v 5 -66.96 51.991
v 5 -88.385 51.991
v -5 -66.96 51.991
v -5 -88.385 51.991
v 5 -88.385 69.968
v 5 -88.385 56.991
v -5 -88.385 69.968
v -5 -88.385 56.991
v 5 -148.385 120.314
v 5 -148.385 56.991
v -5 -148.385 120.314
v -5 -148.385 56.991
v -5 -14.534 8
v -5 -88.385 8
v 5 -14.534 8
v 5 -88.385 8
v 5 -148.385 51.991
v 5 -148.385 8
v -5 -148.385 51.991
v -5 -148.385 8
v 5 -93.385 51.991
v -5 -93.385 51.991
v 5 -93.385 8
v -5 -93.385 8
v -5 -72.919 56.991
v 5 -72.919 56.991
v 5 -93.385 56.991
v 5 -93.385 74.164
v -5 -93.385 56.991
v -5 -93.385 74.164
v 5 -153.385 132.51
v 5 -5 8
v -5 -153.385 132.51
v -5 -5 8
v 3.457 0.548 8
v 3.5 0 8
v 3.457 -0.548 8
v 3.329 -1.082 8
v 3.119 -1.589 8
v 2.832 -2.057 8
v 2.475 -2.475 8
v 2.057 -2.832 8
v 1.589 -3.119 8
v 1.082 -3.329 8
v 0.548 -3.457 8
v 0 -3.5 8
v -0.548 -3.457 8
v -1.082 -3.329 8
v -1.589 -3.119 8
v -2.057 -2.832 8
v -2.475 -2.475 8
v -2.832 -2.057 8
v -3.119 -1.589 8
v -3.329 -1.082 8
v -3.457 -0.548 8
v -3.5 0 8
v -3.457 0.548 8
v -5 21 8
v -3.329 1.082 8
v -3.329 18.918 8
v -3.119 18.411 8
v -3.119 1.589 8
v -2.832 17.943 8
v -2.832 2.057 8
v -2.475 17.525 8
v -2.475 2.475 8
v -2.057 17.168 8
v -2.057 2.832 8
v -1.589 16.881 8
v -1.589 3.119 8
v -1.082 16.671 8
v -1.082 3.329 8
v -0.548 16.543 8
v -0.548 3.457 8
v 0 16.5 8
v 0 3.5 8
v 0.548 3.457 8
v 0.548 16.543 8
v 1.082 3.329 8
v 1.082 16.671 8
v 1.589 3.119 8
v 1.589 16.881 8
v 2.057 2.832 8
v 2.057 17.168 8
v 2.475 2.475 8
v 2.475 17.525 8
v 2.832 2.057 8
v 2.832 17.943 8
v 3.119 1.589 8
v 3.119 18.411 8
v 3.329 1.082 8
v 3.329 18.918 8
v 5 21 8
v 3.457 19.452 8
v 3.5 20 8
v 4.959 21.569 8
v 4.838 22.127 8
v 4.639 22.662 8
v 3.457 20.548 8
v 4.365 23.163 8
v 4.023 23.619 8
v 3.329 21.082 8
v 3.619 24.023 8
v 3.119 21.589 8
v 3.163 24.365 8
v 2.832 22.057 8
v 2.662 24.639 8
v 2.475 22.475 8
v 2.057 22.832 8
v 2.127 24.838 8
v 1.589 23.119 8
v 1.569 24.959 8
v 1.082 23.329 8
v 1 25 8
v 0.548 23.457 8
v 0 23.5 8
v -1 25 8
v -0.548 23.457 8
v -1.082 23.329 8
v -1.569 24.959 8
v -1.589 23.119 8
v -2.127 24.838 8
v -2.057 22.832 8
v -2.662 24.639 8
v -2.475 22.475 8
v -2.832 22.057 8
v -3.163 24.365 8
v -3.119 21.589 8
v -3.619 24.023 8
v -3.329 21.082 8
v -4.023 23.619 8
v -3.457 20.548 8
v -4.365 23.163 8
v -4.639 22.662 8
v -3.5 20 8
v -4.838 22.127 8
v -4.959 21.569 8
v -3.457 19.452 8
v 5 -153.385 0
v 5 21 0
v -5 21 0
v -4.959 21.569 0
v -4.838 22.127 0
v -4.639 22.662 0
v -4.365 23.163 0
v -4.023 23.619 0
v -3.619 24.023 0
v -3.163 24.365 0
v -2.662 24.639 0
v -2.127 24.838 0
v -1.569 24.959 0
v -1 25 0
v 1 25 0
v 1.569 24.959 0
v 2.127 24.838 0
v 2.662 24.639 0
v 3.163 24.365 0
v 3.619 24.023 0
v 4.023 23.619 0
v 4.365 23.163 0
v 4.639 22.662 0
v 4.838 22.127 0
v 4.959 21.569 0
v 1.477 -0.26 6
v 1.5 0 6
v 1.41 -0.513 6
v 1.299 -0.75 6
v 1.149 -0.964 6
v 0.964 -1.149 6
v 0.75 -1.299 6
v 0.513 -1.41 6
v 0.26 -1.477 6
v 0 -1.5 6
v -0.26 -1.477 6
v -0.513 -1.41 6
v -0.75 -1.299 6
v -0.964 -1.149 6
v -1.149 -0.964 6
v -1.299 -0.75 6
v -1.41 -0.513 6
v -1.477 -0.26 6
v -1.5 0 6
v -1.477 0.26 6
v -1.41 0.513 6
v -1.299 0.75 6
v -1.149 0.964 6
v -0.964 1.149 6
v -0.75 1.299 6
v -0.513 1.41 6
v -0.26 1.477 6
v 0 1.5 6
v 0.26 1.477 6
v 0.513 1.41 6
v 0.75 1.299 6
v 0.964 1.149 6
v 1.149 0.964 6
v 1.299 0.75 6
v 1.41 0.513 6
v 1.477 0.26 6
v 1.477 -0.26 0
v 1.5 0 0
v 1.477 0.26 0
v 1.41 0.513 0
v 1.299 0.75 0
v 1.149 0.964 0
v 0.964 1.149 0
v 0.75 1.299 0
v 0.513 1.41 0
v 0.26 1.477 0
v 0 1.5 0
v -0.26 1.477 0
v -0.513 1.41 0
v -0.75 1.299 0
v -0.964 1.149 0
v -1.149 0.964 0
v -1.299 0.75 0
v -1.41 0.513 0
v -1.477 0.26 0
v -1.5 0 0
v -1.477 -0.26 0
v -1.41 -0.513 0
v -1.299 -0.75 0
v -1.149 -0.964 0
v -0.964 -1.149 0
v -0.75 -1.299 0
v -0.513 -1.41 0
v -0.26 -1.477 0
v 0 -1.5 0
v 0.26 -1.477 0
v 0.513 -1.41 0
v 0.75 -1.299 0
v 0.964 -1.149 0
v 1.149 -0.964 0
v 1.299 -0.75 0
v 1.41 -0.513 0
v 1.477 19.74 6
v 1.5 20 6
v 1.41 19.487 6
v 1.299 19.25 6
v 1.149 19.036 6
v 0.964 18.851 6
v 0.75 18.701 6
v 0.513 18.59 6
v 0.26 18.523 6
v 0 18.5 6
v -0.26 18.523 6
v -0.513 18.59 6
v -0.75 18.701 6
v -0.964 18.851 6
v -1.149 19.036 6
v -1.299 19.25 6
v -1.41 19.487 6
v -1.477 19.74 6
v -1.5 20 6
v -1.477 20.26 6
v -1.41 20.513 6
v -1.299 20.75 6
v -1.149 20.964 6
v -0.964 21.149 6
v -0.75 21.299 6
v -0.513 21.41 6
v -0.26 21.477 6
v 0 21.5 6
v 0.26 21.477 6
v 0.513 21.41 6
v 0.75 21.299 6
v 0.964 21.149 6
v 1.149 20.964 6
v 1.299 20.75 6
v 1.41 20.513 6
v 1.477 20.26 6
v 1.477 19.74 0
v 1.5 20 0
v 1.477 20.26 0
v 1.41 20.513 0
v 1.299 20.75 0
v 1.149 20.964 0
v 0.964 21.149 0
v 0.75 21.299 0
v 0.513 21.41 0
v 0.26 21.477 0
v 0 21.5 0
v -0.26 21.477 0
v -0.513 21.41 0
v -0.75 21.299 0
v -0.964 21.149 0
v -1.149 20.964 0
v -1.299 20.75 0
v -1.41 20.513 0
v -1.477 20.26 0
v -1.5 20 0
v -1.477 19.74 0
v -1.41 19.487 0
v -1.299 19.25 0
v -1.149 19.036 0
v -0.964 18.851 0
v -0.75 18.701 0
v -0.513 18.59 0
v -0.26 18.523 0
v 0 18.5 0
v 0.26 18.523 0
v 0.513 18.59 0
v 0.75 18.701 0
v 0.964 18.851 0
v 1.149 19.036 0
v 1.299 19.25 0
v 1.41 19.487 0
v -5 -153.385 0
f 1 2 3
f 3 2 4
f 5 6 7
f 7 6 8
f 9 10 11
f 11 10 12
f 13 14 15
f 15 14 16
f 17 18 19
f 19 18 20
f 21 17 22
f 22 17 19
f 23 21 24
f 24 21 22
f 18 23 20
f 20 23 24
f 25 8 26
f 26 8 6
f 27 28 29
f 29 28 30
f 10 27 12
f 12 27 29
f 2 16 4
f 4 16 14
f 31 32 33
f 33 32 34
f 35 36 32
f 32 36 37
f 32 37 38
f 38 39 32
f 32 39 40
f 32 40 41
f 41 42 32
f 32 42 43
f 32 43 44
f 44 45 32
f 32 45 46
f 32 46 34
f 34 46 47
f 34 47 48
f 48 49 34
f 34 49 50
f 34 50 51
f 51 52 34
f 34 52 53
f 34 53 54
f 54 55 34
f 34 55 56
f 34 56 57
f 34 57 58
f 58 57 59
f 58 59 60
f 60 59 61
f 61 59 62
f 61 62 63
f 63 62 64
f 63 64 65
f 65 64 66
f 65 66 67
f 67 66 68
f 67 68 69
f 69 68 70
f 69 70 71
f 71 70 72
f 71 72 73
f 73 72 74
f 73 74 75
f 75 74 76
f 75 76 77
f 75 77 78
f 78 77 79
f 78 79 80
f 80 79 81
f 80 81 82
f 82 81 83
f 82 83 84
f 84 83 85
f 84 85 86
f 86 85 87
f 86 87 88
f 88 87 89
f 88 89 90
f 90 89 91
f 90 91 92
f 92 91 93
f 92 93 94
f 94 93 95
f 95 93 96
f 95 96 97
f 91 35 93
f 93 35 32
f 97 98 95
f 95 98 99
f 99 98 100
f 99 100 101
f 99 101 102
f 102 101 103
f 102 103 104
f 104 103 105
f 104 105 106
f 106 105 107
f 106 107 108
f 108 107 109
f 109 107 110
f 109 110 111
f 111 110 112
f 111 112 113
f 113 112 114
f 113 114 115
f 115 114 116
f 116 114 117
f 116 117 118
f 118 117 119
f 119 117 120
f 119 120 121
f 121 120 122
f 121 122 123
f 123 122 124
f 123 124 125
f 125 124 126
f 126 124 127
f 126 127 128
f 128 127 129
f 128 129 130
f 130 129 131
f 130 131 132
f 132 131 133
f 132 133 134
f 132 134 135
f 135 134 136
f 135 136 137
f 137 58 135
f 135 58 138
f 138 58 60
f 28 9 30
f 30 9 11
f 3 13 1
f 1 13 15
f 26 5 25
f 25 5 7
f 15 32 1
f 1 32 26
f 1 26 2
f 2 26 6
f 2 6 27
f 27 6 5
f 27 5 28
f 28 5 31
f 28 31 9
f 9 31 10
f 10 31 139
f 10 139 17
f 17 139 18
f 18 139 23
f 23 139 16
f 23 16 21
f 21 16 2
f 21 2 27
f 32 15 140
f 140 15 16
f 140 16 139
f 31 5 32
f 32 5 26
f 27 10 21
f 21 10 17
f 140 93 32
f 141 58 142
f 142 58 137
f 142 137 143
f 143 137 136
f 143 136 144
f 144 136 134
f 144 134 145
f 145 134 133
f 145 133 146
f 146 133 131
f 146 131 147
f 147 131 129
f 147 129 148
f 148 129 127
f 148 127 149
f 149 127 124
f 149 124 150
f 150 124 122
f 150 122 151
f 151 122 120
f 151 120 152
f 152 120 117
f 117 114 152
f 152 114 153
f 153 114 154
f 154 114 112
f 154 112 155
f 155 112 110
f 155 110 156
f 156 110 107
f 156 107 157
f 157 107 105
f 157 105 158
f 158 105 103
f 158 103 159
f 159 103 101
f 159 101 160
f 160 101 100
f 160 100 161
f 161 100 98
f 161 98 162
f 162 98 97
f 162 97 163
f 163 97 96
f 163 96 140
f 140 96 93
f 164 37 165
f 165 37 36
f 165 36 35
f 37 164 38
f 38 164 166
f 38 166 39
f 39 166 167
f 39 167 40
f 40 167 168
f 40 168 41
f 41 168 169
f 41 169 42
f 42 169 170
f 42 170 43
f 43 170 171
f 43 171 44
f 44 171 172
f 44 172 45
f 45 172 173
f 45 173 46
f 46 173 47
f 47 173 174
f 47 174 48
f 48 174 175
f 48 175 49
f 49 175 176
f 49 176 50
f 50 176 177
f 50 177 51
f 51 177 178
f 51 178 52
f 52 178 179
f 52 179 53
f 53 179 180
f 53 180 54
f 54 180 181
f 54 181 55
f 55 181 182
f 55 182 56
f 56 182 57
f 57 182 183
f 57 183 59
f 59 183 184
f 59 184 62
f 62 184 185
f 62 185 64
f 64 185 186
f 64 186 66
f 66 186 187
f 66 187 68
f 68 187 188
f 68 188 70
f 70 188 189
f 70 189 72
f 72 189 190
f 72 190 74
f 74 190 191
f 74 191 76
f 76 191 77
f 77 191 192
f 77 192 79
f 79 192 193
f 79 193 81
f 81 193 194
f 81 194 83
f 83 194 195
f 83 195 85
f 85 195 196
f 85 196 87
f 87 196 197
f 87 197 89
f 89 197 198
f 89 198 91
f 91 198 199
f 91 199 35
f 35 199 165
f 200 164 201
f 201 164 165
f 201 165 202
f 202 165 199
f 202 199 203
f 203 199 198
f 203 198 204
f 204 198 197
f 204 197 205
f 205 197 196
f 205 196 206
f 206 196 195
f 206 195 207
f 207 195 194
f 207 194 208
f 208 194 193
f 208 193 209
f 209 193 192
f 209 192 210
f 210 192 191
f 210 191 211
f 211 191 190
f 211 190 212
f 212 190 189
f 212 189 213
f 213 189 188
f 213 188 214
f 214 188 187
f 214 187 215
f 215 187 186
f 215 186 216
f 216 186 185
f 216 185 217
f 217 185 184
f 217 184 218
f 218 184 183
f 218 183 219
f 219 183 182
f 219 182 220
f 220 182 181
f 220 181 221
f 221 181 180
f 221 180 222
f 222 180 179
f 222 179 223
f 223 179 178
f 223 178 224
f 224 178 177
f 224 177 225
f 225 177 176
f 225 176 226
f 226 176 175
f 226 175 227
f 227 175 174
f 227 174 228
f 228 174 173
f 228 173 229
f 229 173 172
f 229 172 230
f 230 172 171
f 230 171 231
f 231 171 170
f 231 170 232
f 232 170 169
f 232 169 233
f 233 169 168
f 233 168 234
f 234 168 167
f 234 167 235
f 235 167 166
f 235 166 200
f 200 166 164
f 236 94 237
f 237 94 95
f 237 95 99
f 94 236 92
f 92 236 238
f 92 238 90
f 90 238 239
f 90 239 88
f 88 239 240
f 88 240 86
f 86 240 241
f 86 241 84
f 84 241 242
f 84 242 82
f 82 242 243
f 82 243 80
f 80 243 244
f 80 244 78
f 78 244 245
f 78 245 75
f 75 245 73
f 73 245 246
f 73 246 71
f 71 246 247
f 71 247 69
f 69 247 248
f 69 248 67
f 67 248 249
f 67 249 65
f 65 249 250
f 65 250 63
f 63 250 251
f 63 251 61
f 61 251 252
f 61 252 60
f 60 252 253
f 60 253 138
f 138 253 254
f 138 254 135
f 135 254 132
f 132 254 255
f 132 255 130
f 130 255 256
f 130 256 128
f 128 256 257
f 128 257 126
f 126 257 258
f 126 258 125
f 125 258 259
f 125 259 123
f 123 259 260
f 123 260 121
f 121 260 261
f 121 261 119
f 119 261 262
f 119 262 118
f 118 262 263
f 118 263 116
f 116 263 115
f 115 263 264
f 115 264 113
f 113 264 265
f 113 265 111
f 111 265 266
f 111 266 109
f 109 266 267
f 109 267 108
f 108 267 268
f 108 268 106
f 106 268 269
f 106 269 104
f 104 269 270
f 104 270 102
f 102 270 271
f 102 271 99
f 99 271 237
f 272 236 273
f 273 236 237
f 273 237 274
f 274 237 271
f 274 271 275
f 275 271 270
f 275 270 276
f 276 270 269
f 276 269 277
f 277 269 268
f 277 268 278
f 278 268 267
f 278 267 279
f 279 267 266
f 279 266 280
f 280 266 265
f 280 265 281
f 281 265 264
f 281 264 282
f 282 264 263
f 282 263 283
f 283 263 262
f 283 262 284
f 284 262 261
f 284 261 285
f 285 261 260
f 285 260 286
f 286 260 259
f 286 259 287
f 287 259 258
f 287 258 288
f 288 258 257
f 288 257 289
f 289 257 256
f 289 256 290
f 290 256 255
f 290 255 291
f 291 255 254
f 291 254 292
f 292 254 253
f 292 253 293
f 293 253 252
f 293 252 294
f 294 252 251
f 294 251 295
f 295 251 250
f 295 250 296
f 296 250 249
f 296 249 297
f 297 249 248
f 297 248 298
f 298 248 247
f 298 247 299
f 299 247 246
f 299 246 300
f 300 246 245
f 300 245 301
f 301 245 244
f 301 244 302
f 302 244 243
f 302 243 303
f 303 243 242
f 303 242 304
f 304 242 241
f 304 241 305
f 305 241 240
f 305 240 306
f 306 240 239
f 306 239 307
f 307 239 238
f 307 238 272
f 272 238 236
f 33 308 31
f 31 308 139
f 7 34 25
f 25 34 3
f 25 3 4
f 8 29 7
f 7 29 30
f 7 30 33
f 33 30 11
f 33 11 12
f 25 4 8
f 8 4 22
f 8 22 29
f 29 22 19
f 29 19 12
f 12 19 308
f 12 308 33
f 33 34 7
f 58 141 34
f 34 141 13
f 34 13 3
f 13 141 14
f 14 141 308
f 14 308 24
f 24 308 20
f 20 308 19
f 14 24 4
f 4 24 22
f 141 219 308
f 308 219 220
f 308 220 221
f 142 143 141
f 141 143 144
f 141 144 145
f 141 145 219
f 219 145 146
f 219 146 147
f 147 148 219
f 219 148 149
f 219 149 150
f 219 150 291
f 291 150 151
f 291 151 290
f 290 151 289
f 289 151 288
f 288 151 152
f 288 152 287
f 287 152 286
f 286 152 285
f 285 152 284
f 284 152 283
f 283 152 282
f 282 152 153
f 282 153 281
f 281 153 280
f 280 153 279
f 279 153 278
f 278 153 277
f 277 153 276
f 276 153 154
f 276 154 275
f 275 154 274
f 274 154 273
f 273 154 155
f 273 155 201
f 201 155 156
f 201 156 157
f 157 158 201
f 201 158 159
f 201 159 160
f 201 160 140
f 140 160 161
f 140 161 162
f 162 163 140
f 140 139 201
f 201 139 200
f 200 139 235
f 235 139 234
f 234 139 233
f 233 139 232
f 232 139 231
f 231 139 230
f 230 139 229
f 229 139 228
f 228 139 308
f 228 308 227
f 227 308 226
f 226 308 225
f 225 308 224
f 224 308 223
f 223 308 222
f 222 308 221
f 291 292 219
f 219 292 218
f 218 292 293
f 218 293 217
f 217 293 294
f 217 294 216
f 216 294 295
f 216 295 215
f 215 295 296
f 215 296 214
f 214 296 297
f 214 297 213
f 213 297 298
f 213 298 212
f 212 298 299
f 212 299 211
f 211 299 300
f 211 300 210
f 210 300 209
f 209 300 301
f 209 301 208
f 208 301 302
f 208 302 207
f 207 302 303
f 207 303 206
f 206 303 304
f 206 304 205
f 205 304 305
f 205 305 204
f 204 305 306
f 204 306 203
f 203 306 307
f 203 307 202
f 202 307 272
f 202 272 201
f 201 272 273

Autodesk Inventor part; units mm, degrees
ref_plane "YZ Plane" through (0, 0, 0) normal (1, 0, 0) x (0, 1, 0)
ref_plane "XZ Plane" through (0, 0, 0) normal (0, 1, 0) x (-1, 0, 0)
ref_plane "XY Plane" through (0, 0, 0) normal (0, 0, 1) x (1, 0, 0)
sketch "Sketch1" plane through (0, 0, 0) normal (0, 0, 1) x (1, 0, 0)
  line L0 (0, 0) -> (0, 20)
  circle A0 centre (0, 20) radius 1.5
  circle A1 centre (0, 0) radius 1.5
  line L1 (-5, 25) -> (5, 25)
  line L2 (5, 25) -> (5, -5)
  line L3 (5, -5) -> (-5, -5)
  line L4 (-5, -5) -> (-5, 25)
  dimension "d0" = 20
  dimension "d1" = 3
  dimension "d2" = 3
  dimension "d3" = 5
  dimension "d4" = 5
  dimension "d5" = 10
  dimension "d6" = 5
extrude "Extrusion1" add sketch "Sketch1" along normal blind 8
sketch "Sketch2" plane through (5, -5, 0) normal (1, 0, 0) x (0, 0, -1)
  line L0 (-8, 0) -> (-132.5098, -148.385)
  line L1 (-132.5098, -148.385) -> (-124.5098, -148.385)
  line L2 (-124.5098, -148.385) -> (1.3551, 1.615)
  line L3 (-8, 0) -> (-8, 30) projected
  line L4 (0, 0) -> (0, 30) projected
  line L5 (0, 30) -> (-8, 30) projected
  line L6 (-8, 0) -> (-8, 30) projected
  line L7 (0, 0) -> (-8, 0) projected
  point P0 (0, 5)
  point P1 (0, 0)
  dimension "d9" = 8
  dimension "d10" = 140
  dimension "d11" = 150
extrude "Extrusion2" add sketch "Sketch2" against normal up to surface (10 mm away) contours L7 L2 L1 L0
chamfer "Chamfer1" distance 2 angle 45 2 edges at (-1.5, 20, 8) (-1.5, 0, 8)
fillet "Fillet1" radius 4 2 edges at (5, 25, 4) (-5, 25, 4)
sketch "Sketch3" plane through (5, -153.385, 132.5098) normal (1, 0, 0) x (0, 0, -1)
  line L0 (0, 0) -> (8, 0) projected
  line L1 (8, 0) -> (132.5098, 0)
  line L2 (132.5098, 0) -> (132.5098, 5)
  line L3 (132.5098, 5) -> (8, 5)
  line L4 (8, 5) -> (8, 0)
  line L5 (132.5098, 148.6932) -> (124.5098, 148.6932)
  line L6 (124.5098, 148.6932) -> (124.5098, 0)
  line L7 (124.5098, 0) -> (132.5098, 0)
  line L8 (132.5098, 0) -> (132.5098, 148.6932)
  line L9 (124.5098, 148.385) -> (124.5098, 174.385) projected
  line L10 (124.5098, 148.385) -> (0, 0) projected
  line L11 (75.519, 90) -> (80.519, 90)
  line L12 (80.519, 90) -> (80.519, 0)
  line L13 (80.519, 0) -> (75.519, 0)
  line L14 (75.519, 0) -> (75.519, 90)
  line L15 (8, 0) -> (132.5098, 148.385) projected
  line L16 (132.5098, 65) -> (58.346, 65)
  line L17 (58.346, 65) -> (58.346, 60)
  line L18 (58.346, 60) -> (132.5098, 60)
  line L19 (132.5098, 60) -> (132.5098, 65)
  point P0 (132.5098, 153.385)
  point P1 (132.5098, 5)
  point P2 (124.5098, 5)
  point P3 (80.519, 5)
  point P4 (75.519, 5)
  point P5 (80.519, 60)
  point P6 (124.5098, 60)
  point P7 (124.5098, 65)
  point P8 (80.519, 65)
  point P9 (75.519, 60)
  point P10 (75.519, 65)
  dimension "d18" = 5
  dimension "d19" = 5
  dimension "d20" = 90
  dimension "d23" = 5
  dimension "d24" = 55
extrude "Extrusion3" add sketch "Sketch3" against normal blind 10 contours L15 L3 L14 L1 | L4 L3 L15 | L11 L12 L15 L14 | L14 L3 L12 L1 | L6 L5 L8 L15 | L15 L12 L16 L14 | L12 L3 L6 L1 | L14 L18 L12 L3 | L17 L16 L15 | L15 L16 L14 L18 | L15 L8 L16 L6 | L16 L12 L18 L14 | L6 L3 L2 L1 | L16 L8 L18 L6 | L6 L18 L12 L16 | L6 L18 L8 L3
properties part number "legs"
